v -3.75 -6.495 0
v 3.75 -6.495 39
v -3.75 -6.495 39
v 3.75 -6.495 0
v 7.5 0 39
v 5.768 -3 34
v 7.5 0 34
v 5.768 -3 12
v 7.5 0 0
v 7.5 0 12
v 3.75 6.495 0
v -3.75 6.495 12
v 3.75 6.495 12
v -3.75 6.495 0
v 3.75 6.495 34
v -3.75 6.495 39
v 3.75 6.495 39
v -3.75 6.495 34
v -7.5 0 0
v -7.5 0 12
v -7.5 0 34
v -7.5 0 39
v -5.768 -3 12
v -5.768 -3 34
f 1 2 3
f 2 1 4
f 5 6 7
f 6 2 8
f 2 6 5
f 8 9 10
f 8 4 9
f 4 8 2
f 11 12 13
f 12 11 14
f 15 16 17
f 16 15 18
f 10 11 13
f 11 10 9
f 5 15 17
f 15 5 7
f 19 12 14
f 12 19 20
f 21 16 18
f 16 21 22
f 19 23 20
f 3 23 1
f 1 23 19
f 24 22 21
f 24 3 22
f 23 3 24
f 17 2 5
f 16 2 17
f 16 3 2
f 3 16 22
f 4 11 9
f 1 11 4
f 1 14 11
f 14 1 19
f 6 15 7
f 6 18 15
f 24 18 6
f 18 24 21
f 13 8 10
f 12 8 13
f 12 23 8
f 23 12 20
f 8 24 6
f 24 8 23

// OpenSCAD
length_inner = 12;
length_outer = 5;
length_center = 22;
length_total = length_center+length_outer+length_inner;

deep_offset = 3;

difference() {
translate([0,0,length_total/2]) {
  cylinder(r=15.0/2, h=length_total, center=true, $fn=6);
}


translate([0,40/2-deep_offset,length_center/2+length_inner]) {
  cube([40, 40, length_center], center=true);
}


}
